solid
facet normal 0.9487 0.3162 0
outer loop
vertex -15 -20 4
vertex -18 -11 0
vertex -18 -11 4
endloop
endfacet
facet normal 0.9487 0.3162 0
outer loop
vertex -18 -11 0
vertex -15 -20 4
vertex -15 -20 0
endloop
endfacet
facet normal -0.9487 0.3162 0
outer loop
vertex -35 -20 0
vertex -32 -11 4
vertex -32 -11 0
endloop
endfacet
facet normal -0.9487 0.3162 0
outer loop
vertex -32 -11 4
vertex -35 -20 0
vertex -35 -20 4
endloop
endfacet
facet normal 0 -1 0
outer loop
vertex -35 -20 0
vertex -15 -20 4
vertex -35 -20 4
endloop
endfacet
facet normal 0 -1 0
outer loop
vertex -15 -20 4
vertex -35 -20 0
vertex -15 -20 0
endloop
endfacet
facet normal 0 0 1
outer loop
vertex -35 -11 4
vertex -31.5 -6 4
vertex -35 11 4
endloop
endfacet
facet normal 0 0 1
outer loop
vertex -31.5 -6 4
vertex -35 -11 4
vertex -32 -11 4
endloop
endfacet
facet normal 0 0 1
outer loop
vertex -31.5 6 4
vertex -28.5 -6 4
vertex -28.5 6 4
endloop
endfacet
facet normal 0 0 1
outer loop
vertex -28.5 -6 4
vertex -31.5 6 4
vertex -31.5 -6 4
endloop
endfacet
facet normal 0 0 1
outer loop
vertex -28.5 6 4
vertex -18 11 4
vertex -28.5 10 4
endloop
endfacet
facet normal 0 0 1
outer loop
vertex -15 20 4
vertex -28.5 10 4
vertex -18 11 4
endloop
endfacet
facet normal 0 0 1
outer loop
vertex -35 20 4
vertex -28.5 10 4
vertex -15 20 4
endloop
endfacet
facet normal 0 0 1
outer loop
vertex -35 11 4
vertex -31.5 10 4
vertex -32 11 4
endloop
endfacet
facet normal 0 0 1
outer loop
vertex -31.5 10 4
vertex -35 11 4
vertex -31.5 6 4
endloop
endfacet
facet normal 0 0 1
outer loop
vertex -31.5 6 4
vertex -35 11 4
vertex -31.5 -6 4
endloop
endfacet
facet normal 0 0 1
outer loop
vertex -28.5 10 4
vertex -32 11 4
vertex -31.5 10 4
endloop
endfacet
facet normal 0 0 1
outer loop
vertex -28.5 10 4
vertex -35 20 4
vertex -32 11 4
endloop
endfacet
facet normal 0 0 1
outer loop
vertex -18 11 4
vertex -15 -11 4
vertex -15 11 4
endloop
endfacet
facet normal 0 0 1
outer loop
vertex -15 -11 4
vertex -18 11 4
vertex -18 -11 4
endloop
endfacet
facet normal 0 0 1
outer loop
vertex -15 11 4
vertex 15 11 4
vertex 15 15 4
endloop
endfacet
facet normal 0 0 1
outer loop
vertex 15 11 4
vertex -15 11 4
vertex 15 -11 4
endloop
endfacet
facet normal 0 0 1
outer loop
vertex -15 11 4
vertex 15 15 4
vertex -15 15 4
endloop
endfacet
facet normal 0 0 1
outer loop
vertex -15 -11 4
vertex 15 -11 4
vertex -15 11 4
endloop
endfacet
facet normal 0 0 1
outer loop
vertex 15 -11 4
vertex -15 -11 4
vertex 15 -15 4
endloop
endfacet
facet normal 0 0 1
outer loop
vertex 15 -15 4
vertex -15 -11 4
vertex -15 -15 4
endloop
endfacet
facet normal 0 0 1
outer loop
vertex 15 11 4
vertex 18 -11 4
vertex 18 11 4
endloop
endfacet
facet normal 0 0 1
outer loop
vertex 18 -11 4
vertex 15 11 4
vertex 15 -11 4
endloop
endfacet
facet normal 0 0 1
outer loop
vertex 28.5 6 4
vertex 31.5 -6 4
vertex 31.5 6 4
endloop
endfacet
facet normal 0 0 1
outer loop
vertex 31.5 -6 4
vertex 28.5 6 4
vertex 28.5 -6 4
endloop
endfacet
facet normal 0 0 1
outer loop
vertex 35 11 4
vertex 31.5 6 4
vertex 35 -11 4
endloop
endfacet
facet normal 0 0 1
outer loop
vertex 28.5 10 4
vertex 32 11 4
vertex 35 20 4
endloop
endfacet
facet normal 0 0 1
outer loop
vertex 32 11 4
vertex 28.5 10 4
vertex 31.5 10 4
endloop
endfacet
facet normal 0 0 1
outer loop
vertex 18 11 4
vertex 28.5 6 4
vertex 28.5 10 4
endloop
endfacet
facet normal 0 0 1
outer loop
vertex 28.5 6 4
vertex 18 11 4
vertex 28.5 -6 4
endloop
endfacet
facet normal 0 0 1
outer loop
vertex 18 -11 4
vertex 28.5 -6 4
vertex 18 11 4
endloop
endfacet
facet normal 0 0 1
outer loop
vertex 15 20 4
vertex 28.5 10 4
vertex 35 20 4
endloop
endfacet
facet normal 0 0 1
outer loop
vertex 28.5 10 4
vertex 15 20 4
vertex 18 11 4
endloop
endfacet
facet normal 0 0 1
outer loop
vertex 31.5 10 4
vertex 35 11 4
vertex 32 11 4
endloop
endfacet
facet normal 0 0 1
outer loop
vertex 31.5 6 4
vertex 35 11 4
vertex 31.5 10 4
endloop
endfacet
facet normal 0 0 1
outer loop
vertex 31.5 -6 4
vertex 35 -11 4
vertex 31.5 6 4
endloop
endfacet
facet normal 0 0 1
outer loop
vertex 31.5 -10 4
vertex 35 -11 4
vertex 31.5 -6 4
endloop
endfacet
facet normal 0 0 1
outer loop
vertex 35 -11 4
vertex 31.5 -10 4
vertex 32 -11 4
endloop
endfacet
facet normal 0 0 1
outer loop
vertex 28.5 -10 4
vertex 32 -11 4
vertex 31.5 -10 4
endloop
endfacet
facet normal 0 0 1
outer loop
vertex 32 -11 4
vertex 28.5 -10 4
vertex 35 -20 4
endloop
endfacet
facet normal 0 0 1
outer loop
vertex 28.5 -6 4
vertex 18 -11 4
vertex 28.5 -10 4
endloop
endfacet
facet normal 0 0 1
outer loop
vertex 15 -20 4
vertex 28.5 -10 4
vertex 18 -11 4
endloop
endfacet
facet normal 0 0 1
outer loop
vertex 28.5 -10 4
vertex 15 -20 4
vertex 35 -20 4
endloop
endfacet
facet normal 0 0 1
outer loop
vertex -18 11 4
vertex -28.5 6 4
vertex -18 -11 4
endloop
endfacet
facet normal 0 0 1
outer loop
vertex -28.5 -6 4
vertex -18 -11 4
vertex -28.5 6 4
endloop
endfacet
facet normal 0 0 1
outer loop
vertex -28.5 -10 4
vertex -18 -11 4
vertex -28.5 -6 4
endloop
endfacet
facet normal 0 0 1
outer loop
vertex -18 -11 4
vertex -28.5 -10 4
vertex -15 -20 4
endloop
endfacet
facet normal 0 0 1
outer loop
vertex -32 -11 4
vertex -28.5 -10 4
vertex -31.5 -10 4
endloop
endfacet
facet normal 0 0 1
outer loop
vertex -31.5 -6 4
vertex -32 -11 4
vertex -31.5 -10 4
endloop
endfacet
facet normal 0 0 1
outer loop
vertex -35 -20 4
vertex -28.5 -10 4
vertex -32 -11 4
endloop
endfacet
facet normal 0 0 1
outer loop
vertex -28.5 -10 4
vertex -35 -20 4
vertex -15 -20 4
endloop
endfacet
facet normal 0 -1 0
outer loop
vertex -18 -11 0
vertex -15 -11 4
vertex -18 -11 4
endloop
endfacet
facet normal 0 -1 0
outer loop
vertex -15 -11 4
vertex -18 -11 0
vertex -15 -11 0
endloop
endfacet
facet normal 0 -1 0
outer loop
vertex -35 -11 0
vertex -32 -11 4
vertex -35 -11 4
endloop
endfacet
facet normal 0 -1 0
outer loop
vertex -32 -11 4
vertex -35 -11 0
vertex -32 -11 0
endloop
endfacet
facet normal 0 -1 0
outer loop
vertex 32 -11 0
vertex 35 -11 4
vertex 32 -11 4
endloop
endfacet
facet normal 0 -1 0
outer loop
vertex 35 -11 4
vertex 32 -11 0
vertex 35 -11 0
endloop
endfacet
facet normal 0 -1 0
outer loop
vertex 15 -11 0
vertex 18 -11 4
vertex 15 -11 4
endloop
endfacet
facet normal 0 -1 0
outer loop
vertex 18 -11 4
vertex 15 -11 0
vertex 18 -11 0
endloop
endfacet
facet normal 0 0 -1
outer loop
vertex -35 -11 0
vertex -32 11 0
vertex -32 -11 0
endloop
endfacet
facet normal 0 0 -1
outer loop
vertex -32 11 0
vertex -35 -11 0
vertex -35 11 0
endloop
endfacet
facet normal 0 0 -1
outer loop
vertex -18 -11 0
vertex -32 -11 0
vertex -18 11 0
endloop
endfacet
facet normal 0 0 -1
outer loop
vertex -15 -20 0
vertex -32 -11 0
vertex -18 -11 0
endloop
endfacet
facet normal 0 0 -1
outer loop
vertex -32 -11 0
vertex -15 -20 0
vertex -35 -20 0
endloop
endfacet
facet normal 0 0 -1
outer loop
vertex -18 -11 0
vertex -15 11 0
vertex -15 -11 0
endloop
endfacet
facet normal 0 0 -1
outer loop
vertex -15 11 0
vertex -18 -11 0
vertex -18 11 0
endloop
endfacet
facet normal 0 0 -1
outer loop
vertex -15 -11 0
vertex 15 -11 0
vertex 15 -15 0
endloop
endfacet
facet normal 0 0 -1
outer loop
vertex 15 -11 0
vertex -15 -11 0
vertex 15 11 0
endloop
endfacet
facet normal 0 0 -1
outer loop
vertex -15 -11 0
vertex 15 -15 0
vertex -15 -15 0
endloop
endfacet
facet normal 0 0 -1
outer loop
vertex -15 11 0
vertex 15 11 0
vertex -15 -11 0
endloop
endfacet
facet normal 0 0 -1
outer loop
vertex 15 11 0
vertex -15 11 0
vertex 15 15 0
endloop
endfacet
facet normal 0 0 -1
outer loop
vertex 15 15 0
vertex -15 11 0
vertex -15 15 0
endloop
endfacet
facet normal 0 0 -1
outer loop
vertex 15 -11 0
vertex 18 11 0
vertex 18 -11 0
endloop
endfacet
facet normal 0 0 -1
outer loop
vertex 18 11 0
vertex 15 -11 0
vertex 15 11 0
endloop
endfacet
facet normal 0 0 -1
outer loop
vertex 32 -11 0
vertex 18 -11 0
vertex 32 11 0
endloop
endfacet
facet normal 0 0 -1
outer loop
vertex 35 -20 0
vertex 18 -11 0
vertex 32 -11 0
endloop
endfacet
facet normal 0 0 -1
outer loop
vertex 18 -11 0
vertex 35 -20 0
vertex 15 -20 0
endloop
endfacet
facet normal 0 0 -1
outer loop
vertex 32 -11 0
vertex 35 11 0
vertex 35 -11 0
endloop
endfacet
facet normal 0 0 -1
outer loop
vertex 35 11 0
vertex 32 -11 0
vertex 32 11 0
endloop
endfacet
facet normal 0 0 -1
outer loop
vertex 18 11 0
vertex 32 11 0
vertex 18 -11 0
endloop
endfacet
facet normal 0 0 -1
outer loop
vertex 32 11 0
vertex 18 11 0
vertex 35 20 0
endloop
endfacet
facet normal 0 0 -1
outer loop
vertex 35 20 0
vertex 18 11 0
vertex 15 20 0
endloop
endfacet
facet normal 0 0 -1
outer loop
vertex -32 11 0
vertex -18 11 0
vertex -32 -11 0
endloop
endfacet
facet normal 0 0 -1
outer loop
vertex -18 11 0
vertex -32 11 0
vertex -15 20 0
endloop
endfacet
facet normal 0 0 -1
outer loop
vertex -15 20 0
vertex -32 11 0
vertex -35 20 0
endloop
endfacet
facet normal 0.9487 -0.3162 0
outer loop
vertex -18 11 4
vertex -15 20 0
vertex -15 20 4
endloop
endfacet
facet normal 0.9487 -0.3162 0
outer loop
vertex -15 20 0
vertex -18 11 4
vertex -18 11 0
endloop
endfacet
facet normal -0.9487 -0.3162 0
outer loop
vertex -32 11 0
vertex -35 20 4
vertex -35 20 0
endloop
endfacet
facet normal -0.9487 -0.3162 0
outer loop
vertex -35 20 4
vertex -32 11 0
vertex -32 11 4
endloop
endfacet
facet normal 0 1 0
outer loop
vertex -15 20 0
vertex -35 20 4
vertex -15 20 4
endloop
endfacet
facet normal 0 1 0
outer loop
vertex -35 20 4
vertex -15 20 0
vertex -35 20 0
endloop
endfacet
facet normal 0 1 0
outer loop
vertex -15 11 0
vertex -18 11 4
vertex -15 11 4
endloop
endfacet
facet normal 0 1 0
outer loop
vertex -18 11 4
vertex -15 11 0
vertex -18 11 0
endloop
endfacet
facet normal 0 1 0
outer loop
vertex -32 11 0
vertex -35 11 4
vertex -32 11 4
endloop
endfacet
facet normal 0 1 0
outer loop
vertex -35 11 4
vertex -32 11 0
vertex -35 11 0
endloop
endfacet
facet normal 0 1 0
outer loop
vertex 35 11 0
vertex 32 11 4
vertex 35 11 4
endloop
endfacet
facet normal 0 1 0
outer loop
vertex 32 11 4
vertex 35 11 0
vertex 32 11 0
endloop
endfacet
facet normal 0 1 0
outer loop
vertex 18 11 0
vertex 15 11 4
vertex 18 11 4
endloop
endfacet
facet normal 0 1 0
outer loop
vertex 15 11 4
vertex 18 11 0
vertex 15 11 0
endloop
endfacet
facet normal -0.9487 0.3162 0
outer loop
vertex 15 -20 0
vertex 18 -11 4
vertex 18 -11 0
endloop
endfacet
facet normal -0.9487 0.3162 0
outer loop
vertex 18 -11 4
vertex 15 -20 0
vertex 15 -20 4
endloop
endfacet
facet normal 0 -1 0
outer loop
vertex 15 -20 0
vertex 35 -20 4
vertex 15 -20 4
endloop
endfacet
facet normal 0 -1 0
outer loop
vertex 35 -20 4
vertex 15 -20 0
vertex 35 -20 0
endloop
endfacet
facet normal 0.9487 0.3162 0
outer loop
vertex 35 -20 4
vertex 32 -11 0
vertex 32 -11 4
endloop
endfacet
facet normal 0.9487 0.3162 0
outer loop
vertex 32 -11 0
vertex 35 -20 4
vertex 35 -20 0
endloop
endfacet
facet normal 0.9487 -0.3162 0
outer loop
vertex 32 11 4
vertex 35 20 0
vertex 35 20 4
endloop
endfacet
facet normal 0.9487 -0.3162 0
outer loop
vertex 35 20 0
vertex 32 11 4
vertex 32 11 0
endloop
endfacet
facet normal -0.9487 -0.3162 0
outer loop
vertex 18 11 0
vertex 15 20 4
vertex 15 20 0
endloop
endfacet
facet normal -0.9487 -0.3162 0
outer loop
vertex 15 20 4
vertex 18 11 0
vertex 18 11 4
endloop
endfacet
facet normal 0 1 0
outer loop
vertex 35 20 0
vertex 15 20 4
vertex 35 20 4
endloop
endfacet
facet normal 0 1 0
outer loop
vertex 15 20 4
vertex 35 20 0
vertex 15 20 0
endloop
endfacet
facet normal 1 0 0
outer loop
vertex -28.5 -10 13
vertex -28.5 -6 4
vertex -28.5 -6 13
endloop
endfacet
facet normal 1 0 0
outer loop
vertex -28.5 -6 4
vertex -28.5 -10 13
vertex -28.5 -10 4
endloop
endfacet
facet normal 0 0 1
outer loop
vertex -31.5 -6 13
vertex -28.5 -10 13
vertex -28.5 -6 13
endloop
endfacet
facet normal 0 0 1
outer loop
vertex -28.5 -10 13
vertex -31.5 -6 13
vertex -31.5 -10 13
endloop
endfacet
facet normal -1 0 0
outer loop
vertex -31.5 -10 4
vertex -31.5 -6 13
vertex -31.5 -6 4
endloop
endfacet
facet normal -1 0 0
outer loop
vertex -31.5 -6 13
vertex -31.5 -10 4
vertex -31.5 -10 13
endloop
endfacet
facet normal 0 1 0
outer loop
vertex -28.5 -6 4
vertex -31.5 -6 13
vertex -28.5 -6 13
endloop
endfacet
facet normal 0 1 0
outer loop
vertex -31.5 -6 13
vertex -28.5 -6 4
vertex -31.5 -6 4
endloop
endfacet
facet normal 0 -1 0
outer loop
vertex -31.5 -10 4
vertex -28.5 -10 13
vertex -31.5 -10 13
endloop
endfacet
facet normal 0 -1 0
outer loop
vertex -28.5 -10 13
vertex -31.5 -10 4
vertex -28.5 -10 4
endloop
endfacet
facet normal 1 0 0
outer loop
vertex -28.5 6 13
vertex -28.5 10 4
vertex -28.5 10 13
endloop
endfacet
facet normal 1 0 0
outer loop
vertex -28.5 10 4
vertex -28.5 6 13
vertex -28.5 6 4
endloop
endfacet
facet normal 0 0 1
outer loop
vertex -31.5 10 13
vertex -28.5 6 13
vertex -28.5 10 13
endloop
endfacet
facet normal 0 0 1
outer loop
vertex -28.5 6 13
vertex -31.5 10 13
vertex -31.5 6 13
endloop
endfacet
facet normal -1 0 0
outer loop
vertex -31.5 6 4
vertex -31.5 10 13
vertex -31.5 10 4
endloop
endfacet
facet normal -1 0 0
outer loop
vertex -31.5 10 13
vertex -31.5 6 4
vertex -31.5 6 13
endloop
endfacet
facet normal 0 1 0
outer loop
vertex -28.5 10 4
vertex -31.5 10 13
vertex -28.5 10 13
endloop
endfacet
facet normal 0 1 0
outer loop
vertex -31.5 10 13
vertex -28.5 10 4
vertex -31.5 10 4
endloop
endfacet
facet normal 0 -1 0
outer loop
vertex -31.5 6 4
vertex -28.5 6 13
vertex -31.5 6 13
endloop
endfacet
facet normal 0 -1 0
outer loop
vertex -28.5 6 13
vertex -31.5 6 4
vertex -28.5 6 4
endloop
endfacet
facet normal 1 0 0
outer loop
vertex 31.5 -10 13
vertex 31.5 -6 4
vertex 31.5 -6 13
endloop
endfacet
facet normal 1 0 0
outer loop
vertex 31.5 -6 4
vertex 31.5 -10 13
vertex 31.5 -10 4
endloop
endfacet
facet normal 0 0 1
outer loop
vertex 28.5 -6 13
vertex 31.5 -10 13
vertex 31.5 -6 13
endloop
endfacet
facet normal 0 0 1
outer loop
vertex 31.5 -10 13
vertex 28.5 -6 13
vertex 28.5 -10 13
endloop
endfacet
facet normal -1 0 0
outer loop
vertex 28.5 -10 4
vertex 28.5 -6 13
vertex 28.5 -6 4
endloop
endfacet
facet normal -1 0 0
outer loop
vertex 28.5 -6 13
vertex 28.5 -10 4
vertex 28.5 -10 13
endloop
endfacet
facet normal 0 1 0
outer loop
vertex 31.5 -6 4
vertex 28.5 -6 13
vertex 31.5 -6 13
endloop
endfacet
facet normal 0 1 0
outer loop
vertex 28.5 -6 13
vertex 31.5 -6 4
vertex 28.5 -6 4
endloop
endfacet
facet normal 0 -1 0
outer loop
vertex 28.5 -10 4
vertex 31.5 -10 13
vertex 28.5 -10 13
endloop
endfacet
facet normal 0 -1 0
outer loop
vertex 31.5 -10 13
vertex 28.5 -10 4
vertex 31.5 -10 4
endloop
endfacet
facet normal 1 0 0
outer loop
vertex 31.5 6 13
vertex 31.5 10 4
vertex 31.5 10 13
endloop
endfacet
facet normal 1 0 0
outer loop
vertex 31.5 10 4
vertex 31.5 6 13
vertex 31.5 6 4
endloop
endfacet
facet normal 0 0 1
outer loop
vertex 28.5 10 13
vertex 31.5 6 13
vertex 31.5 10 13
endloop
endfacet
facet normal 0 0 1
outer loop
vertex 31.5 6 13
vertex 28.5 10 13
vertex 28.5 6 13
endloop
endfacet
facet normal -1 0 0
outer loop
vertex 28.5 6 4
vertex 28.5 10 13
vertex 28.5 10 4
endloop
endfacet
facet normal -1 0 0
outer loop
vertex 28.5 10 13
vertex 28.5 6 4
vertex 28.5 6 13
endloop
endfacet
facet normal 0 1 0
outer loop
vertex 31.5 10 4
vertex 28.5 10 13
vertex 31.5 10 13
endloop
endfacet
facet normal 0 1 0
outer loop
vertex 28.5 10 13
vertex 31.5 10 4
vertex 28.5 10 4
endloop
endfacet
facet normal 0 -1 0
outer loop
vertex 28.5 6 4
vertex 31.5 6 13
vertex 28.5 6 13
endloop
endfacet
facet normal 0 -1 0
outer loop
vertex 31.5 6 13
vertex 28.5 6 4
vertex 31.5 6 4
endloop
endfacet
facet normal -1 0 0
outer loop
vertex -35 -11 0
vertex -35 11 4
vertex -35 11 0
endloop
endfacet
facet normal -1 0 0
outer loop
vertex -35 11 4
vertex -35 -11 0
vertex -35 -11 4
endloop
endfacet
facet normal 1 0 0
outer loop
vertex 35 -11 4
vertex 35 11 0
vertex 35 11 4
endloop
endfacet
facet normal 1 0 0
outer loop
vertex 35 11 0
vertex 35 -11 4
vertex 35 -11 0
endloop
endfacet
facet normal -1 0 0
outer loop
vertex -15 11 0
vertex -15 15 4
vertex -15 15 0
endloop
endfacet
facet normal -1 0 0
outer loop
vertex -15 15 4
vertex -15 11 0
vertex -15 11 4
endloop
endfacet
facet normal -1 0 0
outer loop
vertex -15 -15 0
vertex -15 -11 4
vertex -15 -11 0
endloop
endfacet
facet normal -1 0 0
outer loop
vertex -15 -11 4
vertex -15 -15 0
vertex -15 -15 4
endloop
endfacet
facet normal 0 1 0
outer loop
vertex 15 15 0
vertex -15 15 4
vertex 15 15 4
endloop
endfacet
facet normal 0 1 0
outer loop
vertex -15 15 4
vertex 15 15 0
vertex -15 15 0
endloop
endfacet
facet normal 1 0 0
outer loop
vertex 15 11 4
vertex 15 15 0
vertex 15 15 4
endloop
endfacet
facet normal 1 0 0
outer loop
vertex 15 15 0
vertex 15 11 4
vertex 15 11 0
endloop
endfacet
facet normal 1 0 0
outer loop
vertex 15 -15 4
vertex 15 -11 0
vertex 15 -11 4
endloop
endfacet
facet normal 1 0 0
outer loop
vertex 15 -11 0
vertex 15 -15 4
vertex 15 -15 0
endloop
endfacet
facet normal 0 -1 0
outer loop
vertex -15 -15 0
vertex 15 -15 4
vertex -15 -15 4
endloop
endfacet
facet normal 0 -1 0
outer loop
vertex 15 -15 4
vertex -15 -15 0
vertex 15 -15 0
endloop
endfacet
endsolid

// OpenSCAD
// FLOODSHIFT temporary bridge | 70 x 40 x 13 mm max
// Flat 30 x 30 mm centered ArUco pad; raised end rails create a bridge silhouette.
$fn=48;
union(){
  linear_extrude(4) square([70,22],center=true);
  for(s=[-1,1]) translate([s*25,0,0]) {
    linear_extrude(4) polygon([[-7,-11],[7,-11],[10,-20],[-10,-20]]);
    mirror([0,1,0]) linear_extrude(4) polygon([[-7,-11],[7,-11],[10,-20],[-10,-20]]);
  }
  // Upright bridge rails at both ends, clear of the marker pad.
  for(s=[-1,1]) for(y=[-8,8]) translate([s*30,y,8.5]) cube([3,4,9],center=true);
  linear_extrude(4) square([30,30],center=true);
}
